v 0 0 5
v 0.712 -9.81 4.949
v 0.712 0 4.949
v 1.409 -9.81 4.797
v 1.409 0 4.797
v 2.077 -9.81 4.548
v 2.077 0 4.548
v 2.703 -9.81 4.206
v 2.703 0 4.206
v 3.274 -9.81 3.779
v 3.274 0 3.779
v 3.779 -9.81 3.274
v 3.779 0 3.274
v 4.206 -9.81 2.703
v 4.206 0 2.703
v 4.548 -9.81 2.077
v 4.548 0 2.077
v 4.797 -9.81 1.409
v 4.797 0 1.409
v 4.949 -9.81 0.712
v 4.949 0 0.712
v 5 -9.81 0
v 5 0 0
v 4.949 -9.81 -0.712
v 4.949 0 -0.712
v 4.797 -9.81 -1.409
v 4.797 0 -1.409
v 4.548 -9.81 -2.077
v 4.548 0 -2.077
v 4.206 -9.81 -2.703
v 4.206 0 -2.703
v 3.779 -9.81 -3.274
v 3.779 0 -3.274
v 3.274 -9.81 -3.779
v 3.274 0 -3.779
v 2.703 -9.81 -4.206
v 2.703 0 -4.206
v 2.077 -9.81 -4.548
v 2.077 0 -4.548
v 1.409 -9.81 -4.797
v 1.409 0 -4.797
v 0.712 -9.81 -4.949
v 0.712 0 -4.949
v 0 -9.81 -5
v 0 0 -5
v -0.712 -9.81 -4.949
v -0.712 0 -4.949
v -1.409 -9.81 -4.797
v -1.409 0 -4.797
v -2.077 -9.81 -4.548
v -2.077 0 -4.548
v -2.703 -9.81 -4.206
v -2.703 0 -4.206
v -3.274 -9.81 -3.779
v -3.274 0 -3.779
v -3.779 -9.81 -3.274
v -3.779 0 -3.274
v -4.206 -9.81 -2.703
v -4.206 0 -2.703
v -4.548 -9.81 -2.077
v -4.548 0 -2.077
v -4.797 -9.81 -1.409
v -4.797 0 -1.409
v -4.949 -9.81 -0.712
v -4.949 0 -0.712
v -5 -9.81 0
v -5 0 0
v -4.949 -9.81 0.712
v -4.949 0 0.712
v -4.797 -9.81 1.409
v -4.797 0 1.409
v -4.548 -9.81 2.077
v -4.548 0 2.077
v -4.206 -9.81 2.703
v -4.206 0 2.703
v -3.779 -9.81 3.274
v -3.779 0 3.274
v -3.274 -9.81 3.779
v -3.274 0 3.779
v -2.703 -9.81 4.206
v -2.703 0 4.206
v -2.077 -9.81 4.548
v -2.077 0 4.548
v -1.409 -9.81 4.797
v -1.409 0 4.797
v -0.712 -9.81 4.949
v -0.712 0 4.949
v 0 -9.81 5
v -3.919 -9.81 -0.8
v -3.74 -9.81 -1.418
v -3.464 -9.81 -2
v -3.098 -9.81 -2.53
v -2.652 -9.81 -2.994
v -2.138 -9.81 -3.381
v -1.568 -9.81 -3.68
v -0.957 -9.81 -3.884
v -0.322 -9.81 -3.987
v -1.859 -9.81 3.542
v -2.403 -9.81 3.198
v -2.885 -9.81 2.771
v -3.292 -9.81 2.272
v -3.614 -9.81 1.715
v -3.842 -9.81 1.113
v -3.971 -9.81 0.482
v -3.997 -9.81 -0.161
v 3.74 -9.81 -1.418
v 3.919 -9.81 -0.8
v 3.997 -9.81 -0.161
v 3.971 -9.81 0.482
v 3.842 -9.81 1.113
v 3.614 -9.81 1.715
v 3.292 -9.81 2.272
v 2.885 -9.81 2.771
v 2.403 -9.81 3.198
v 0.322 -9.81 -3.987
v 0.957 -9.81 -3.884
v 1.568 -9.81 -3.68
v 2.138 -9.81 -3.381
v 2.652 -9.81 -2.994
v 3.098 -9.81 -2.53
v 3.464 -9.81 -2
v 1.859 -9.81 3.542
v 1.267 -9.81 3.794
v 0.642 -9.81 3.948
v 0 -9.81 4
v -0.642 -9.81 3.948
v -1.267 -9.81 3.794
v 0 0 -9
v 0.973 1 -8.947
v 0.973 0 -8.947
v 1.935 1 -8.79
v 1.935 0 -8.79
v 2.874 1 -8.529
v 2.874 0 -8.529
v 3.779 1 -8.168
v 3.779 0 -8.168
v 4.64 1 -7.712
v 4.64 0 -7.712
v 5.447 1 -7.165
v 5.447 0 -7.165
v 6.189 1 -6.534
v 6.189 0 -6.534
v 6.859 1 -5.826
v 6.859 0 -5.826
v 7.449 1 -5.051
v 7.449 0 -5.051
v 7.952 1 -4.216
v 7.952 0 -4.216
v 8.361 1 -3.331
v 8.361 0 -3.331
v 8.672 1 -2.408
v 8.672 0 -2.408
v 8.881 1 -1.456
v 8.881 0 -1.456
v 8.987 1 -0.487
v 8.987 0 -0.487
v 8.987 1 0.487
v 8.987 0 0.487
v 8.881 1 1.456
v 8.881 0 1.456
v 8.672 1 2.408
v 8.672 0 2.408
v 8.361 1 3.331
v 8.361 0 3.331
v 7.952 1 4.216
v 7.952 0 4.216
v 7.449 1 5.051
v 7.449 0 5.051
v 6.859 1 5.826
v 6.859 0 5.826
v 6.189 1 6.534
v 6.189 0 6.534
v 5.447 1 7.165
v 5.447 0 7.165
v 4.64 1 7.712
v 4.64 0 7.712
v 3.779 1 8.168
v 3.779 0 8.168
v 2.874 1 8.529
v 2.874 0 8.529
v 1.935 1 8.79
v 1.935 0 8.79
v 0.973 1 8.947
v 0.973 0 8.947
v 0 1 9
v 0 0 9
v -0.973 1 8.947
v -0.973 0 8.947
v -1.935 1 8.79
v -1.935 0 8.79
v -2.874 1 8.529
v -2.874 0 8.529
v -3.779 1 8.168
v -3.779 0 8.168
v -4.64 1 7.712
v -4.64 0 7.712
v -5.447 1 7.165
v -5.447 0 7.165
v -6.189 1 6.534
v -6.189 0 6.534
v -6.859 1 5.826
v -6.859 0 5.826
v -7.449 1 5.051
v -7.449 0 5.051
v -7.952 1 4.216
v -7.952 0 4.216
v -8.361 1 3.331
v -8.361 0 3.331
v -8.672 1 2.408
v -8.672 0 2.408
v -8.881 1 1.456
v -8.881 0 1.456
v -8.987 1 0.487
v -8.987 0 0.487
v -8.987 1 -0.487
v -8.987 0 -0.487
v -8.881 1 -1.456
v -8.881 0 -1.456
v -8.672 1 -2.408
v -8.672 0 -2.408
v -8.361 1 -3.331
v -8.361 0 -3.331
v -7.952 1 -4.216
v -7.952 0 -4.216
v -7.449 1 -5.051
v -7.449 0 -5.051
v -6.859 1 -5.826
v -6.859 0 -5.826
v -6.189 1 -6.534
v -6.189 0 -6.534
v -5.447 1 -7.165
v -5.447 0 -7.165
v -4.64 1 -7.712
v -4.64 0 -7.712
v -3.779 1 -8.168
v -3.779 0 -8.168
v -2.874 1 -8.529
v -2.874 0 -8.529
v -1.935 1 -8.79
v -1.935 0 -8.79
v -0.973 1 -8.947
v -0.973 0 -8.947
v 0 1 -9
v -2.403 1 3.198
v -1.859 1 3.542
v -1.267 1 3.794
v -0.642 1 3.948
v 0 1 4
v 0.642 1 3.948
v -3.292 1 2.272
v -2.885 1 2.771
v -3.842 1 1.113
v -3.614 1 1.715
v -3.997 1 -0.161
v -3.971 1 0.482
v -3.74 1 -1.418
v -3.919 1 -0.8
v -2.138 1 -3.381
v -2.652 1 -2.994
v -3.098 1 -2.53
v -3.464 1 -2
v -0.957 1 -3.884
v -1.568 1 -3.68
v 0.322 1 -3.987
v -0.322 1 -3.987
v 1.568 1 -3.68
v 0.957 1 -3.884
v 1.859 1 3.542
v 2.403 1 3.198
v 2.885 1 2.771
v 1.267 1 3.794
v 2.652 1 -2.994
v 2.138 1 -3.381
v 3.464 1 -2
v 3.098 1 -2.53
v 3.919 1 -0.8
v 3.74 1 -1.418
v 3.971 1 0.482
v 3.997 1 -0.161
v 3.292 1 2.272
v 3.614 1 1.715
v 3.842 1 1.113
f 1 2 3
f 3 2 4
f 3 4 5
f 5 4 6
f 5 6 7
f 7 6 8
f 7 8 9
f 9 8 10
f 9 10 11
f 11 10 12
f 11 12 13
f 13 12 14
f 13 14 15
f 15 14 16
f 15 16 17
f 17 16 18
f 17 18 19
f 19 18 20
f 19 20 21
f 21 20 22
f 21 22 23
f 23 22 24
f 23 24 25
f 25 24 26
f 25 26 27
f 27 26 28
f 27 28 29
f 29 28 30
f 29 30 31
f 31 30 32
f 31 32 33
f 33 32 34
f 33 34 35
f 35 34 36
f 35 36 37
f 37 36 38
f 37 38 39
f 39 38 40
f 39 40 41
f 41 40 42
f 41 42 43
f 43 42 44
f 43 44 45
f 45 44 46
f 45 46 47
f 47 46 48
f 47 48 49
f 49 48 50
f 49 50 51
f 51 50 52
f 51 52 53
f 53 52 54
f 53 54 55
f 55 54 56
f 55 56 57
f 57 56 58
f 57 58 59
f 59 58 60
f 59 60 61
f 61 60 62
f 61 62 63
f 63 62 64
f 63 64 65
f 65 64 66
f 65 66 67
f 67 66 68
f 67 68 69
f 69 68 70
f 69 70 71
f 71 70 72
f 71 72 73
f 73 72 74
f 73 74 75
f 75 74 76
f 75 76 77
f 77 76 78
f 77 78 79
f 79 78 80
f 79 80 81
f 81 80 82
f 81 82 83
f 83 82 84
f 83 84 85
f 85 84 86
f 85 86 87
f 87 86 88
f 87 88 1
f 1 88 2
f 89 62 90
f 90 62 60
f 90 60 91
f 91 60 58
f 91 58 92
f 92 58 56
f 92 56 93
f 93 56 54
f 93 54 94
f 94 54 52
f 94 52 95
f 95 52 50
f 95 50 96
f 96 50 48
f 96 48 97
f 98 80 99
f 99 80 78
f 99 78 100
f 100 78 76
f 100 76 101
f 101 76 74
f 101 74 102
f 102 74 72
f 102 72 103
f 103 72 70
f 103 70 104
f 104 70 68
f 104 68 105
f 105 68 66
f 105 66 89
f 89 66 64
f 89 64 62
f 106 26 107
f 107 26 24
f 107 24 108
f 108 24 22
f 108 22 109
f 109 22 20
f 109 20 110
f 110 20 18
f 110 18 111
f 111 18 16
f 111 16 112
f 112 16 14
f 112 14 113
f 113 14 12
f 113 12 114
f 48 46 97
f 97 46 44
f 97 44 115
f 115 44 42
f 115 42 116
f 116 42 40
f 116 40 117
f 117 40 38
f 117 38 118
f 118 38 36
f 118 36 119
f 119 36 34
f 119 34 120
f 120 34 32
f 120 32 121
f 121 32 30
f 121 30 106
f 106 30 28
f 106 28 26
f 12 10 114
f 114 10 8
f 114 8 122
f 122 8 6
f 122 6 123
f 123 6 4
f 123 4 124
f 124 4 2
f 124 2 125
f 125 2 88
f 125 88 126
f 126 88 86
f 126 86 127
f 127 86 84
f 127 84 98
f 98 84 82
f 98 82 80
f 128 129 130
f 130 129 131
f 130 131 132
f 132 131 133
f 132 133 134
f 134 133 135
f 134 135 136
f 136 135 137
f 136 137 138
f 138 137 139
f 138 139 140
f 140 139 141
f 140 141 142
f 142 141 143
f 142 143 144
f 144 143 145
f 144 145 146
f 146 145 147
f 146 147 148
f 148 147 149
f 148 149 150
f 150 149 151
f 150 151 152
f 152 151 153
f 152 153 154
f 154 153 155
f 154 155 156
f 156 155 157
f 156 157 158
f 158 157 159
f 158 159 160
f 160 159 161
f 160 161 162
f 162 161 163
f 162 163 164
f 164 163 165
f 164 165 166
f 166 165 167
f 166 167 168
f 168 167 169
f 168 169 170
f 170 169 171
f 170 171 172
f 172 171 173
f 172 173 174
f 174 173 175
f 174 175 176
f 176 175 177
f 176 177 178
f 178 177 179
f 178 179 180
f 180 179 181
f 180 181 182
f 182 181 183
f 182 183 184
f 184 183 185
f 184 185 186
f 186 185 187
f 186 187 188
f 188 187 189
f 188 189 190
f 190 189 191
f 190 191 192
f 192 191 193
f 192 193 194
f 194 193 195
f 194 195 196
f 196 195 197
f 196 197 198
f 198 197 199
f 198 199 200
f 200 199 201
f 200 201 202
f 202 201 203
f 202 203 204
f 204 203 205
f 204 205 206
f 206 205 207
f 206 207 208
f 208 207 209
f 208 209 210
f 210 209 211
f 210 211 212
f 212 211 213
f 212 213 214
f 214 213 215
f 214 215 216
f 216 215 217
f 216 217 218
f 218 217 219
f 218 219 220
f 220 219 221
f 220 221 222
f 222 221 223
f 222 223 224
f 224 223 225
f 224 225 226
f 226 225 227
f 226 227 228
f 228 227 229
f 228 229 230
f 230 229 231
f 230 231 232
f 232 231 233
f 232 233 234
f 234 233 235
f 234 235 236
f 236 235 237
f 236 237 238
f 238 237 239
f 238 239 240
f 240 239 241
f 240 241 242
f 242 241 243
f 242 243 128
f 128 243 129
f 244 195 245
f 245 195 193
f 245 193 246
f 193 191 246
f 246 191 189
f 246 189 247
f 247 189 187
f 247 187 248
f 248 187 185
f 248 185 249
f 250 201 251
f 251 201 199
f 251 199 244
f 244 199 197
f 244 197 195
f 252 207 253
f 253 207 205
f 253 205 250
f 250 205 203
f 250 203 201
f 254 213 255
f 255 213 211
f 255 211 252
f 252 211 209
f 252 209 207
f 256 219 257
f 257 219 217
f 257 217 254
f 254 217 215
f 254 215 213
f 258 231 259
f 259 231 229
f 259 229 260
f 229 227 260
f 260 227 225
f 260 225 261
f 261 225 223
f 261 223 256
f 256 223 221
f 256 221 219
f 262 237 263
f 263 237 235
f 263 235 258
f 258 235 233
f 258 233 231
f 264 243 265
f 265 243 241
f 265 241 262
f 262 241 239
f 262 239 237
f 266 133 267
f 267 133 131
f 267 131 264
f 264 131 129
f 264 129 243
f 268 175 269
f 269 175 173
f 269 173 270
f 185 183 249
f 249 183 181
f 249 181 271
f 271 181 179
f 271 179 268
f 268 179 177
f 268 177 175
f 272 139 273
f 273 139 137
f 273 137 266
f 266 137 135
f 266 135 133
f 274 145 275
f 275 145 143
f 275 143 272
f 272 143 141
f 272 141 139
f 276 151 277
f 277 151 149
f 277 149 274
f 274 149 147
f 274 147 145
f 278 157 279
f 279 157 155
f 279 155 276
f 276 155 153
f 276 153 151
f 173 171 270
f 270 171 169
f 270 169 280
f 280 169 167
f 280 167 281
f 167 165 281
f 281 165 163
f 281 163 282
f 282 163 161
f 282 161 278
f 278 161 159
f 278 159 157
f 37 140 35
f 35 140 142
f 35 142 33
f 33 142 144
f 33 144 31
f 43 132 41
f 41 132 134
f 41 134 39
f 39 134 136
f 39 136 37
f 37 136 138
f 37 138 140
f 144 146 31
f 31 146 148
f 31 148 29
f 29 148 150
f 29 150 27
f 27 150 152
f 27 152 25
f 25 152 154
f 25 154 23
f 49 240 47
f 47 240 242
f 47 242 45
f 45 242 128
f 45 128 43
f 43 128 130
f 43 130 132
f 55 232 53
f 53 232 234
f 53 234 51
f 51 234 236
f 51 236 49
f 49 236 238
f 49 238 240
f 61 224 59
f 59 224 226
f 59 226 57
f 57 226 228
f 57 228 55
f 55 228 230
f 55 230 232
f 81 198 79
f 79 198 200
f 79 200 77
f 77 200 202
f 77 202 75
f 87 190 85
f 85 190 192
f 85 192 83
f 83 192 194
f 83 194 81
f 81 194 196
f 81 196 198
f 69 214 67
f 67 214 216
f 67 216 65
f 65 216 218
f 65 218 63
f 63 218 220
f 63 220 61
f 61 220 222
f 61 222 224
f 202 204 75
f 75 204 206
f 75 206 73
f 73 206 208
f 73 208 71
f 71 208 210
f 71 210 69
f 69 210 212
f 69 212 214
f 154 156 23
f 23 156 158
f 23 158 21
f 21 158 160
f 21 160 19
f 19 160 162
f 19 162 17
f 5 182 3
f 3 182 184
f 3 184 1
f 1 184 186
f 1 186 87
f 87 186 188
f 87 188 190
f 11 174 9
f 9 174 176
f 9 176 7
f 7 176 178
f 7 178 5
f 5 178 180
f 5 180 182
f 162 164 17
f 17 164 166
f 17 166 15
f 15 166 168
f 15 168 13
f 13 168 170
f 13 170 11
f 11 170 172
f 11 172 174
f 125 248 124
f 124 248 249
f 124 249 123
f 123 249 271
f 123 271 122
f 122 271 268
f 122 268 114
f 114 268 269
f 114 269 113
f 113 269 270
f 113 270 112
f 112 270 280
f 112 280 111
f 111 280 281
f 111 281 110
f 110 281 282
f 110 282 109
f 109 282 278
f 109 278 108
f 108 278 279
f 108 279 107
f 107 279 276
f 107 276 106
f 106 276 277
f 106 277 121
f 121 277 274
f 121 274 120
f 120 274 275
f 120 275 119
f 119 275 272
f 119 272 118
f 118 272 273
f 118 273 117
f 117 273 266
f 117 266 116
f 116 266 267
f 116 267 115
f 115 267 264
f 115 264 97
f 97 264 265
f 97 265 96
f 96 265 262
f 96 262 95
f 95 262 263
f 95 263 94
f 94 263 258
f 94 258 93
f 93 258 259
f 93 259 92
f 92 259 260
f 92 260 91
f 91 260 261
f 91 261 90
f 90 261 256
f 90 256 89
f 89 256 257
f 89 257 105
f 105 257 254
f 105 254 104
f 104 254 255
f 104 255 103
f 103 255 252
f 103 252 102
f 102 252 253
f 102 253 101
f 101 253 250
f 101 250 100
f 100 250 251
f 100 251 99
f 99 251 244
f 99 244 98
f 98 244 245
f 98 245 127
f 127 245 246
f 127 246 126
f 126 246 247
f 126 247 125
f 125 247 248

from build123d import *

# Parameters (mm, degrees)
SKETCH1_R           = 5
BOSS_EXTRUDE1_DEPTH = 9.81
SKETCH2_R           = 9
BOSS_EXTRUDE2_DEPTH = 1
SKETCH3_R           = 4
CUT_EXTRUDE1_DEPTH  = 15.72


with BuildPart() as part:
    # Sketch1 → Boss-Extrude1 (new body)
    with BuildSketch(Plane(origin=(0, 0, 0), x_dir=(1, 0, 0), z_dir=(0, 1, 0))):
        Circle(SKETCH1_R)
    extrude(amount=-BOSS_EXTRUDE1_DEPTH)

    # Sketch2 → Boss-Extrude2 (add)
    with BuildSketch(Plane(origin=(0, 0, 0), x_dir=(1, 0, 0), z_dir=(0, 1, 0))):
        Circle(SKETCH2_R)
    extrude(amount=BOSS_EXTRUDE2_DEPTH)

    # Sketch3 → Cut-Extrude1 (cut)
    with BuildSketch(Plane(origin=(0, 1, 0), x_dir=(1, 0, 0), z_dir=(0, 1, 0))):
        Circle(SKETCH3_R)
    extrude(amount=-CUT_EXTRUDE1_DEPTH, mode=Mode.SUBTRACT)


solid = part.part
